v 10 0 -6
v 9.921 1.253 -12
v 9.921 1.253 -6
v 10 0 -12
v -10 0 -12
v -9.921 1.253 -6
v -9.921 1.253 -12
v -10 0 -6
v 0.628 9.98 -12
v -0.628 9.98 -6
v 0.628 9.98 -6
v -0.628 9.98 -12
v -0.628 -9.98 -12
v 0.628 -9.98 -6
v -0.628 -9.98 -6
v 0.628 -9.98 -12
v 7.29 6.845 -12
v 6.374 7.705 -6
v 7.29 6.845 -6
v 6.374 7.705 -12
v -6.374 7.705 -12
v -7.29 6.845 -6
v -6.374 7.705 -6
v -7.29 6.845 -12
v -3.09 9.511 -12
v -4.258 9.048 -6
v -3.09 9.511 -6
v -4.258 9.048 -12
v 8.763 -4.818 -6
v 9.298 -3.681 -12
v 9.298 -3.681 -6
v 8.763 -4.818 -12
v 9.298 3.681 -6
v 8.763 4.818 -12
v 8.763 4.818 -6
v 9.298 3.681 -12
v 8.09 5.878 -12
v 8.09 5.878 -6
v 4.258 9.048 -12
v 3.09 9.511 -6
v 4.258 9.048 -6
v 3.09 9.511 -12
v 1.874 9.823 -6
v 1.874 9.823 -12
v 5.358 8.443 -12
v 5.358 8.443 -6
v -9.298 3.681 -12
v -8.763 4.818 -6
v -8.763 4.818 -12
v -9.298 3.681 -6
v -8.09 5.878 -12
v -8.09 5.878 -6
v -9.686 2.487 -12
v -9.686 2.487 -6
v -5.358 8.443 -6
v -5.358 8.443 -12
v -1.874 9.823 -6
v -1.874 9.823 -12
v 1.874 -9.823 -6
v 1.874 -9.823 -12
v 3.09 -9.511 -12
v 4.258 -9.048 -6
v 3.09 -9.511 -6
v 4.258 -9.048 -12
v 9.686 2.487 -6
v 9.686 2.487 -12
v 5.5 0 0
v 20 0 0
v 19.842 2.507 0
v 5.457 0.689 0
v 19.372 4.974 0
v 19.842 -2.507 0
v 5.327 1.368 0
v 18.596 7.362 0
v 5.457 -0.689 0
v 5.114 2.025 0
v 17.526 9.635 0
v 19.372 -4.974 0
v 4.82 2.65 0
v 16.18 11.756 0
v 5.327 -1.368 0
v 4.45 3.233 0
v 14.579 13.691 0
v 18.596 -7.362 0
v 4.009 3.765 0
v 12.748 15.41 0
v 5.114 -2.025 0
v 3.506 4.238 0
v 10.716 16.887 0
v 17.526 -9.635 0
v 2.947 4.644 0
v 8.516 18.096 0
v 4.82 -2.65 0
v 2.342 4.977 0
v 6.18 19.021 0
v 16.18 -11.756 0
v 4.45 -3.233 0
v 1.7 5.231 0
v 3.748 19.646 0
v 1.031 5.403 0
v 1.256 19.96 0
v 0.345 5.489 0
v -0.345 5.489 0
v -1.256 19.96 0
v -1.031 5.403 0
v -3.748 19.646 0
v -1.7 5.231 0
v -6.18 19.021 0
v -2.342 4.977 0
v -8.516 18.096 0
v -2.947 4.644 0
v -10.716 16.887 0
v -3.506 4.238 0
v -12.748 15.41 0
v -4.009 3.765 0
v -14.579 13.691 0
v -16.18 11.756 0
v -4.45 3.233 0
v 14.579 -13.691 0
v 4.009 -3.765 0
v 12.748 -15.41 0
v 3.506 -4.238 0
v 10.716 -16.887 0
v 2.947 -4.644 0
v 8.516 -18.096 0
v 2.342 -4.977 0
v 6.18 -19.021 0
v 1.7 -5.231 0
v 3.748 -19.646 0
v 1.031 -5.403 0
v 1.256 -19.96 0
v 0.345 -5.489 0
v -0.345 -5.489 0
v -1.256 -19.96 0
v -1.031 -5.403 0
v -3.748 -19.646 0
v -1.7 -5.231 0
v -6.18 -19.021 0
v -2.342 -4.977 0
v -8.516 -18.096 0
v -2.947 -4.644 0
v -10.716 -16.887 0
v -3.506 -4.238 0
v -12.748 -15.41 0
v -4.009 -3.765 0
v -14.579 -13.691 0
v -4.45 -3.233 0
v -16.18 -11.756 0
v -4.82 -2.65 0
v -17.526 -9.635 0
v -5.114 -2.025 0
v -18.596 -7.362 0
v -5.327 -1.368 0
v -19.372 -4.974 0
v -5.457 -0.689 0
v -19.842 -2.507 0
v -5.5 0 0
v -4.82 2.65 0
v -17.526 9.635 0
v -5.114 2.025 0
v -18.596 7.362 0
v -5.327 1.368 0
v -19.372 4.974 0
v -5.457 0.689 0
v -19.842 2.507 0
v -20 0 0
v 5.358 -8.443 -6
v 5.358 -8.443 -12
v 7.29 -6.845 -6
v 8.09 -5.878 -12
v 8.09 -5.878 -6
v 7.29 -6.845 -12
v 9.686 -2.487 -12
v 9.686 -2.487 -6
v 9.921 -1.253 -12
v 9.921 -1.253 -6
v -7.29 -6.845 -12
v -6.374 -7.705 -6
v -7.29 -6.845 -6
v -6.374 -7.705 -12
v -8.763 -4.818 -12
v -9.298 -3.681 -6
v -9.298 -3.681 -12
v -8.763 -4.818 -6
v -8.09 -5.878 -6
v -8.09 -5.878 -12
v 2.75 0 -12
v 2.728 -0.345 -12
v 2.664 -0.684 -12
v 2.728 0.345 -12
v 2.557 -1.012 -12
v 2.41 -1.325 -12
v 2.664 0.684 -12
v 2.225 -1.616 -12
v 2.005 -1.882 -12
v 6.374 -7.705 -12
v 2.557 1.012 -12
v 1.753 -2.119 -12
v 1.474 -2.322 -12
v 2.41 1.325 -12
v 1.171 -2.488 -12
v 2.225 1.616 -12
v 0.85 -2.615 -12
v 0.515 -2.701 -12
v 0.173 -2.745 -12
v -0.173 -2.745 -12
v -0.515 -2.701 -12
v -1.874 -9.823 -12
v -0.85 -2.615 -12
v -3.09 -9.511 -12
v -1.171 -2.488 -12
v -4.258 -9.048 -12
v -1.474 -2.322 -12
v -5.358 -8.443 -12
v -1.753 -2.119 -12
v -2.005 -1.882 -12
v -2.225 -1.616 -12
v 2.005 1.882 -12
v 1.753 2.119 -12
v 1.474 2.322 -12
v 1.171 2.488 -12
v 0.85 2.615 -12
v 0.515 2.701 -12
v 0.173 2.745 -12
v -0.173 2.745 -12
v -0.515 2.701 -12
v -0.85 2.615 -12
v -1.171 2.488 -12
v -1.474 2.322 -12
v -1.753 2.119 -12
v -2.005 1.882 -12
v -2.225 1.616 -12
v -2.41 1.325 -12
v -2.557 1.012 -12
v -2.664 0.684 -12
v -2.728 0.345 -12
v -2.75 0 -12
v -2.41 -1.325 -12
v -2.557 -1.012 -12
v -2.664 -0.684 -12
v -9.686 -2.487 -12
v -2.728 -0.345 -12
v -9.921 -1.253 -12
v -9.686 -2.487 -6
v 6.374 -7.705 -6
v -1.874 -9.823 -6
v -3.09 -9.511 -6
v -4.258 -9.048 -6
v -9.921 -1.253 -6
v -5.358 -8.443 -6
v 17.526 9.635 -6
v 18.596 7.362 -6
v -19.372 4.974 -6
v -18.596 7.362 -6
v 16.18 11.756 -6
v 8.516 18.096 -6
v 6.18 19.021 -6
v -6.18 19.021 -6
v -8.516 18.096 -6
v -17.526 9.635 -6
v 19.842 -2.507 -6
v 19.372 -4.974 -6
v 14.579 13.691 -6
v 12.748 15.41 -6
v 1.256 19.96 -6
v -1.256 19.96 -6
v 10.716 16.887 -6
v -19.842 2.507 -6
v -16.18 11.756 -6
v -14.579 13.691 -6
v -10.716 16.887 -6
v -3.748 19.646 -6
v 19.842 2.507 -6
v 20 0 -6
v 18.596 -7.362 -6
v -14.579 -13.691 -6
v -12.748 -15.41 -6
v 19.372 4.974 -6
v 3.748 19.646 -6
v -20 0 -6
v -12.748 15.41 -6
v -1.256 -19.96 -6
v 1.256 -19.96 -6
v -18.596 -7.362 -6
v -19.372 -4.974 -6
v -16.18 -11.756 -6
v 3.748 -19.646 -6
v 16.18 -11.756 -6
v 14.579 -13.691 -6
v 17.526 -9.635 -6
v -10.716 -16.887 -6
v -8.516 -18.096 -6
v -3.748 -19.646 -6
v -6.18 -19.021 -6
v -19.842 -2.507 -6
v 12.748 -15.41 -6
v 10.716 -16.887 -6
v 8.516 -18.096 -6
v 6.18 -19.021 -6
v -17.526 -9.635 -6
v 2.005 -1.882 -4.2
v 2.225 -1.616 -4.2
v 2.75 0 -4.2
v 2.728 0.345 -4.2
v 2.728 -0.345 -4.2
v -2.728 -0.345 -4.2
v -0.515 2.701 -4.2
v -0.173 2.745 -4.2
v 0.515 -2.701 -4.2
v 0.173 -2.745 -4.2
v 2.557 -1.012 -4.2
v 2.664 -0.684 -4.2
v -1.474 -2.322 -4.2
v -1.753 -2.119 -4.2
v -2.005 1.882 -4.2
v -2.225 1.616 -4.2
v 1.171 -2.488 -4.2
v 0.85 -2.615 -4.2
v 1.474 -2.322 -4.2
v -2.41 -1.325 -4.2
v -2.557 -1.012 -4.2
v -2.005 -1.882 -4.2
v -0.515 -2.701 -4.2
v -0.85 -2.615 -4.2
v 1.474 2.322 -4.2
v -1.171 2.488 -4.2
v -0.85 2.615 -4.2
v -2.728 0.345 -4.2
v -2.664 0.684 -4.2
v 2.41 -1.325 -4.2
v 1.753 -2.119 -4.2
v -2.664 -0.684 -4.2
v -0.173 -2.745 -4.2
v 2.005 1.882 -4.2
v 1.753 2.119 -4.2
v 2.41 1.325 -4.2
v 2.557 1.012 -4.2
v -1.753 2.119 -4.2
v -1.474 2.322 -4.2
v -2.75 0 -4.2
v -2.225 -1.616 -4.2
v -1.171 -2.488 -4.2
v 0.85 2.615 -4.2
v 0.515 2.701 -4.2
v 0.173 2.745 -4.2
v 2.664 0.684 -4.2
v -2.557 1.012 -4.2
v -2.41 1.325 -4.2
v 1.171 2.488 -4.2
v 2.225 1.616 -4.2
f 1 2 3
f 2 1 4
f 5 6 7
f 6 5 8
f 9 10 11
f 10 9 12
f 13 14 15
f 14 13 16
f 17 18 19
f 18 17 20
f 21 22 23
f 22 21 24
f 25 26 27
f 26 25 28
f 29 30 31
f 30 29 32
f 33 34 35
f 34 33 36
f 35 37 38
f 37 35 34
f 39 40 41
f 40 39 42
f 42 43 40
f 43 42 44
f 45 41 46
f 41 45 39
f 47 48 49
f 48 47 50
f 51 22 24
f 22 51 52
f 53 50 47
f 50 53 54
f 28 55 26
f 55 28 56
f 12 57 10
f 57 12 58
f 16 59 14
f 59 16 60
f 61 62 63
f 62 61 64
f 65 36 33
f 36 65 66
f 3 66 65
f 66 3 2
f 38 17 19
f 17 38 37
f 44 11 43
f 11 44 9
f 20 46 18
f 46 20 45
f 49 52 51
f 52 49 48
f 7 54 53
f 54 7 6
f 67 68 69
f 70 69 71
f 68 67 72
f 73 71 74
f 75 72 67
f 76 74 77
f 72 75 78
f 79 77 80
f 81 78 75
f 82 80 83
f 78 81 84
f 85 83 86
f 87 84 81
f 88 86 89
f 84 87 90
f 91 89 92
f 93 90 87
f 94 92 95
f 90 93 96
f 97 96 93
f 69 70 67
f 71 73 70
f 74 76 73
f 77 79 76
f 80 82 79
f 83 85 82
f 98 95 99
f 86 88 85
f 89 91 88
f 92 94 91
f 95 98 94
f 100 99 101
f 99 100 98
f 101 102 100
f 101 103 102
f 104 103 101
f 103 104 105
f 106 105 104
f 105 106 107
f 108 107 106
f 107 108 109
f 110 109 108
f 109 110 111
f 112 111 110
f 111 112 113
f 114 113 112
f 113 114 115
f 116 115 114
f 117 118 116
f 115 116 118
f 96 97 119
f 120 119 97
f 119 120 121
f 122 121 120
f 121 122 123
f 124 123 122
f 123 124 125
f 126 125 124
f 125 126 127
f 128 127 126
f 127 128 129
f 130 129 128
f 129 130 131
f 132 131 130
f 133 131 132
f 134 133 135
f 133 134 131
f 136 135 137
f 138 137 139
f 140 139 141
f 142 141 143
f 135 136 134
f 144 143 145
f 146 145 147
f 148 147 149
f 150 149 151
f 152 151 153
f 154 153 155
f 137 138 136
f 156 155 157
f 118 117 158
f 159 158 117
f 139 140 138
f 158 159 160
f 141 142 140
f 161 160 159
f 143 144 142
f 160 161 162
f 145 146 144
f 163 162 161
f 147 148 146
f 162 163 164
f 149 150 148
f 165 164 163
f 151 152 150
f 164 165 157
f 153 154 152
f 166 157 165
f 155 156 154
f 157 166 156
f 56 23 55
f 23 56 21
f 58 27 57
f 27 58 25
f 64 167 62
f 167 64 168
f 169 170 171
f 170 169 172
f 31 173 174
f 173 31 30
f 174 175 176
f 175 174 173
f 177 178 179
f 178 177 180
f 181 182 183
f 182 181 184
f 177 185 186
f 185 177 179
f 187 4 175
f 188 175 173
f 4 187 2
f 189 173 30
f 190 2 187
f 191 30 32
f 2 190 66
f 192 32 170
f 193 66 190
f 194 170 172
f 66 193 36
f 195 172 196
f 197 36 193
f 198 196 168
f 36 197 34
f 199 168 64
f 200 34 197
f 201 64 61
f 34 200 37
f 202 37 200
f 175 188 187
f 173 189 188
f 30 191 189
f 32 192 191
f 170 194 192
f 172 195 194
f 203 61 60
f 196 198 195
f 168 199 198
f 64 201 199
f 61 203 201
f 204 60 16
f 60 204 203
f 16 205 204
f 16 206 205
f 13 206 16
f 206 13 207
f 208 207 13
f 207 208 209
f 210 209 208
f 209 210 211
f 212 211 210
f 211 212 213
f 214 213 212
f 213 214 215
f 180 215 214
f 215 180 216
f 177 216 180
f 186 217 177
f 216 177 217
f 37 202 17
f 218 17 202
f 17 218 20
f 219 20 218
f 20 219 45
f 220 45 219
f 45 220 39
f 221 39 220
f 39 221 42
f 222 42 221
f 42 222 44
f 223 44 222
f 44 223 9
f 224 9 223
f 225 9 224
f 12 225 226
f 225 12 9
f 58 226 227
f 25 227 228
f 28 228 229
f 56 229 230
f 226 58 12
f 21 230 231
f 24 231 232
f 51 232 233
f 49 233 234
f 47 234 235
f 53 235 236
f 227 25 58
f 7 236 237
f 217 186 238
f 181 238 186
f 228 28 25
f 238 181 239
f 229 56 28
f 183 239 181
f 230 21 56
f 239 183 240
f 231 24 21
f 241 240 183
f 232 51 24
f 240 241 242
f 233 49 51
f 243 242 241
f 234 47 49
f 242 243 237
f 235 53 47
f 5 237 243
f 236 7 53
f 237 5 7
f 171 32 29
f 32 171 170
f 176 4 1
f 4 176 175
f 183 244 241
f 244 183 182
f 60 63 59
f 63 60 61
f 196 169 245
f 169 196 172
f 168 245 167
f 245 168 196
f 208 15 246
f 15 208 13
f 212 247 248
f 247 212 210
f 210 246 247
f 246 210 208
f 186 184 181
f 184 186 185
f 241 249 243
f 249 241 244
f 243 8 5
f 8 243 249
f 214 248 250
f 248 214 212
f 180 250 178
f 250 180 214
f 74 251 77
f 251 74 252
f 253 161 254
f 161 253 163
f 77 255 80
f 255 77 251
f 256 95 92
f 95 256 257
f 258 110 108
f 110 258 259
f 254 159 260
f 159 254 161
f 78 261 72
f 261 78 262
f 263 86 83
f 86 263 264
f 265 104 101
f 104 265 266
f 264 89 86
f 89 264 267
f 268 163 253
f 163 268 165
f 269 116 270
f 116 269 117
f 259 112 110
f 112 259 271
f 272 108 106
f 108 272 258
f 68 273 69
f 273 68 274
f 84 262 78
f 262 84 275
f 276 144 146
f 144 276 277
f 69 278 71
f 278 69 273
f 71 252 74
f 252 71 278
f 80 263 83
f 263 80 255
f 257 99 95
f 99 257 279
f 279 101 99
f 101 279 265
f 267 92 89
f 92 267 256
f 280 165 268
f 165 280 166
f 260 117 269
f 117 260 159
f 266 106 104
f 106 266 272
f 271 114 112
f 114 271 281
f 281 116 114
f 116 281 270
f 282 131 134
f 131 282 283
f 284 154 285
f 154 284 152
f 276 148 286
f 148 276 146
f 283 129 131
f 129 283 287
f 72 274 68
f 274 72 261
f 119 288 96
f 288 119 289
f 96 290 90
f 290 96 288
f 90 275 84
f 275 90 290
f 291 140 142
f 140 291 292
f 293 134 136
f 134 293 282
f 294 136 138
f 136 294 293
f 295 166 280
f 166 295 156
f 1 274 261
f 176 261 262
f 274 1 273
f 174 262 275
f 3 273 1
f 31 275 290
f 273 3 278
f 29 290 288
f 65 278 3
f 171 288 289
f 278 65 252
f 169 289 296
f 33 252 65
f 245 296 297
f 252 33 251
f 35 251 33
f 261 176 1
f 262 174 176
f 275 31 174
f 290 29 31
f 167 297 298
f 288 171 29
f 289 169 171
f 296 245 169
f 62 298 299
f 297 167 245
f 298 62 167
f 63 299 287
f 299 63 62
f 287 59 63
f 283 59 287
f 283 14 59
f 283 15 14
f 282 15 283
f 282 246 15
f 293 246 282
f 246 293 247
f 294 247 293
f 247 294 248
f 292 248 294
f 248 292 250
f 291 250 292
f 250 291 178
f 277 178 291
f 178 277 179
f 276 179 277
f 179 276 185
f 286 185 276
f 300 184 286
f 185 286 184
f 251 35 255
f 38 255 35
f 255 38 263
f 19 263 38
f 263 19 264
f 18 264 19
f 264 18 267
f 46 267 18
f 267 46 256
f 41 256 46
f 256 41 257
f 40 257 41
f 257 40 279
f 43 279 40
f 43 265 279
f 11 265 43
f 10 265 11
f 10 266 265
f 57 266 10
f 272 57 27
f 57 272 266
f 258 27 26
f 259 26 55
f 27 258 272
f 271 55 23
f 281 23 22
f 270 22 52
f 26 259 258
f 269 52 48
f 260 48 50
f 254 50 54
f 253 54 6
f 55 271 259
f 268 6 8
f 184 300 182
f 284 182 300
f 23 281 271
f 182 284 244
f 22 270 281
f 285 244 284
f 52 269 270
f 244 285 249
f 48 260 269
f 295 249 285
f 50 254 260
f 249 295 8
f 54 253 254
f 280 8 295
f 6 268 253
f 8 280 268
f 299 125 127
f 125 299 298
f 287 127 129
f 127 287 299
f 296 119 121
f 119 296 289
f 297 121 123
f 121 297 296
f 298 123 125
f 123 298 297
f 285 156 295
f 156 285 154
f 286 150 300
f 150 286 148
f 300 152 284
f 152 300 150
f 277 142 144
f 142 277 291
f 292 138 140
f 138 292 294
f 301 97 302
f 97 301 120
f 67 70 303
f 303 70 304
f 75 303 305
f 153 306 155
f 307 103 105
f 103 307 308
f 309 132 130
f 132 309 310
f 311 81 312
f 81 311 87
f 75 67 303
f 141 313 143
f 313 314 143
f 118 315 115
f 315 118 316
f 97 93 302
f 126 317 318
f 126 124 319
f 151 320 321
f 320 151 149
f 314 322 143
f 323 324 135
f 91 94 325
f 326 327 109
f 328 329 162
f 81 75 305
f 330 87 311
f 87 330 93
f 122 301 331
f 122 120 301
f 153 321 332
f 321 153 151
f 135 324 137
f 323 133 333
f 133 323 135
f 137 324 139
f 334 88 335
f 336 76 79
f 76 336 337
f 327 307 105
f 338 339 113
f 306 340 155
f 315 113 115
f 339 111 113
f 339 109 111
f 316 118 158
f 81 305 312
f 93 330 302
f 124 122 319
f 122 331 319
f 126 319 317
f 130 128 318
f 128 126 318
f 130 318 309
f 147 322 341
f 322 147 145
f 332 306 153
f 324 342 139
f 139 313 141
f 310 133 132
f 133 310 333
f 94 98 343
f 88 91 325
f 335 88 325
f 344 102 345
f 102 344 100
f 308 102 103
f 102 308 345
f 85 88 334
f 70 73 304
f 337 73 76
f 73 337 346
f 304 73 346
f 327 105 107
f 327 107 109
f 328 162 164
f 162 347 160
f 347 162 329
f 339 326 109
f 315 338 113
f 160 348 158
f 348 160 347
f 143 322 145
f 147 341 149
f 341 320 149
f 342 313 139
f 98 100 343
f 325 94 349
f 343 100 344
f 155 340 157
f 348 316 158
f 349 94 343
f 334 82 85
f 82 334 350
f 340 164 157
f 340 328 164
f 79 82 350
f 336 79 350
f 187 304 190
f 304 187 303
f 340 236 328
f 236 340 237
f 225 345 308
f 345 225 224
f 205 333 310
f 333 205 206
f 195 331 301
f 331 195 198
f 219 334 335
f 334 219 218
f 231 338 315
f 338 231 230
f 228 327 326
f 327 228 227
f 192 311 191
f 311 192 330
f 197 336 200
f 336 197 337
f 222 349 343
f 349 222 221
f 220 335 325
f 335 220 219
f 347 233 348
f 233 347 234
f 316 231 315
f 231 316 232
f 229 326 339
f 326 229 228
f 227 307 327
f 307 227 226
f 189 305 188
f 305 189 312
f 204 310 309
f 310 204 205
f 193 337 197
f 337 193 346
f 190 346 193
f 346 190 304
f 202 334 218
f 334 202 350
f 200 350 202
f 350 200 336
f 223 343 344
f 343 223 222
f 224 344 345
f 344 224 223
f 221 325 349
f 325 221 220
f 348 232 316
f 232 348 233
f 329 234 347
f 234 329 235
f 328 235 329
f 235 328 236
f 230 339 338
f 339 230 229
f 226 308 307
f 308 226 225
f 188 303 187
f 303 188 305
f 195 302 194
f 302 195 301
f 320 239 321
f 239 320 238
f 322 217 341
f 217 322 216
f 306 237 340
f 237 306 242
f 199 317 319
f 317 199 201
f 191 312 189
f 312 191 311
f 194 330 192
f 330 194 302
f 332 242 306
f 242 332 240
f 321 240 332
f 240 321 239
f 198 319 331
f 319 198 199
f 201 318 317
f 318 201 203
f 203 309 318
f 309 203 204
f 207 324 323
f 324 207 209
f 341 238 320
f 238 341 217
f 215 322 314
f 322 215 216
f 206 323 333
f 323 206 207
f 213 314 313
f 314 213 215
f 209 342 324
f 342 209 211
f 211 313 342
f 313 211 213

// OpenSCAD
$fn = 50;


difference() {
	union() {
		translate(v = [0, 0, -12.0000000000]) {
			cylinder(h = 12, r = 10.0000000000);
		}
		translate(v = [0, 0, -6.0000000000]) {
			cylinder(h = 6, r = 20.0000000000);
		}
	}
	union() {
		translate(v = [0, 0, 0]) {
			rotate(a = [0, 0, 0]) {
				difference() {
					union() {
						#translate(v = [0, 0, -12.0000000000]) {
							cylinder(h = 12, r = 2.2500000000);
						}
						#translate(v = [0, 0, -4.2000000000]) {
							cylinder(h = 4.2000000000, r = 10.0000000000, r1 = 2.7500000000, r2 = 5.5000000000);
						}
						#translate(v = [0, 0, -12.0000000000]) {
							cylinder(h = 12, r = 2.7500000000);
						}
						#translate(v = [0, 0, -12.0000000000]) {
							cylinder(h = 12, r = 2.2500000000);
						}
					}
					union();
				}
			}
		}
	}
}
